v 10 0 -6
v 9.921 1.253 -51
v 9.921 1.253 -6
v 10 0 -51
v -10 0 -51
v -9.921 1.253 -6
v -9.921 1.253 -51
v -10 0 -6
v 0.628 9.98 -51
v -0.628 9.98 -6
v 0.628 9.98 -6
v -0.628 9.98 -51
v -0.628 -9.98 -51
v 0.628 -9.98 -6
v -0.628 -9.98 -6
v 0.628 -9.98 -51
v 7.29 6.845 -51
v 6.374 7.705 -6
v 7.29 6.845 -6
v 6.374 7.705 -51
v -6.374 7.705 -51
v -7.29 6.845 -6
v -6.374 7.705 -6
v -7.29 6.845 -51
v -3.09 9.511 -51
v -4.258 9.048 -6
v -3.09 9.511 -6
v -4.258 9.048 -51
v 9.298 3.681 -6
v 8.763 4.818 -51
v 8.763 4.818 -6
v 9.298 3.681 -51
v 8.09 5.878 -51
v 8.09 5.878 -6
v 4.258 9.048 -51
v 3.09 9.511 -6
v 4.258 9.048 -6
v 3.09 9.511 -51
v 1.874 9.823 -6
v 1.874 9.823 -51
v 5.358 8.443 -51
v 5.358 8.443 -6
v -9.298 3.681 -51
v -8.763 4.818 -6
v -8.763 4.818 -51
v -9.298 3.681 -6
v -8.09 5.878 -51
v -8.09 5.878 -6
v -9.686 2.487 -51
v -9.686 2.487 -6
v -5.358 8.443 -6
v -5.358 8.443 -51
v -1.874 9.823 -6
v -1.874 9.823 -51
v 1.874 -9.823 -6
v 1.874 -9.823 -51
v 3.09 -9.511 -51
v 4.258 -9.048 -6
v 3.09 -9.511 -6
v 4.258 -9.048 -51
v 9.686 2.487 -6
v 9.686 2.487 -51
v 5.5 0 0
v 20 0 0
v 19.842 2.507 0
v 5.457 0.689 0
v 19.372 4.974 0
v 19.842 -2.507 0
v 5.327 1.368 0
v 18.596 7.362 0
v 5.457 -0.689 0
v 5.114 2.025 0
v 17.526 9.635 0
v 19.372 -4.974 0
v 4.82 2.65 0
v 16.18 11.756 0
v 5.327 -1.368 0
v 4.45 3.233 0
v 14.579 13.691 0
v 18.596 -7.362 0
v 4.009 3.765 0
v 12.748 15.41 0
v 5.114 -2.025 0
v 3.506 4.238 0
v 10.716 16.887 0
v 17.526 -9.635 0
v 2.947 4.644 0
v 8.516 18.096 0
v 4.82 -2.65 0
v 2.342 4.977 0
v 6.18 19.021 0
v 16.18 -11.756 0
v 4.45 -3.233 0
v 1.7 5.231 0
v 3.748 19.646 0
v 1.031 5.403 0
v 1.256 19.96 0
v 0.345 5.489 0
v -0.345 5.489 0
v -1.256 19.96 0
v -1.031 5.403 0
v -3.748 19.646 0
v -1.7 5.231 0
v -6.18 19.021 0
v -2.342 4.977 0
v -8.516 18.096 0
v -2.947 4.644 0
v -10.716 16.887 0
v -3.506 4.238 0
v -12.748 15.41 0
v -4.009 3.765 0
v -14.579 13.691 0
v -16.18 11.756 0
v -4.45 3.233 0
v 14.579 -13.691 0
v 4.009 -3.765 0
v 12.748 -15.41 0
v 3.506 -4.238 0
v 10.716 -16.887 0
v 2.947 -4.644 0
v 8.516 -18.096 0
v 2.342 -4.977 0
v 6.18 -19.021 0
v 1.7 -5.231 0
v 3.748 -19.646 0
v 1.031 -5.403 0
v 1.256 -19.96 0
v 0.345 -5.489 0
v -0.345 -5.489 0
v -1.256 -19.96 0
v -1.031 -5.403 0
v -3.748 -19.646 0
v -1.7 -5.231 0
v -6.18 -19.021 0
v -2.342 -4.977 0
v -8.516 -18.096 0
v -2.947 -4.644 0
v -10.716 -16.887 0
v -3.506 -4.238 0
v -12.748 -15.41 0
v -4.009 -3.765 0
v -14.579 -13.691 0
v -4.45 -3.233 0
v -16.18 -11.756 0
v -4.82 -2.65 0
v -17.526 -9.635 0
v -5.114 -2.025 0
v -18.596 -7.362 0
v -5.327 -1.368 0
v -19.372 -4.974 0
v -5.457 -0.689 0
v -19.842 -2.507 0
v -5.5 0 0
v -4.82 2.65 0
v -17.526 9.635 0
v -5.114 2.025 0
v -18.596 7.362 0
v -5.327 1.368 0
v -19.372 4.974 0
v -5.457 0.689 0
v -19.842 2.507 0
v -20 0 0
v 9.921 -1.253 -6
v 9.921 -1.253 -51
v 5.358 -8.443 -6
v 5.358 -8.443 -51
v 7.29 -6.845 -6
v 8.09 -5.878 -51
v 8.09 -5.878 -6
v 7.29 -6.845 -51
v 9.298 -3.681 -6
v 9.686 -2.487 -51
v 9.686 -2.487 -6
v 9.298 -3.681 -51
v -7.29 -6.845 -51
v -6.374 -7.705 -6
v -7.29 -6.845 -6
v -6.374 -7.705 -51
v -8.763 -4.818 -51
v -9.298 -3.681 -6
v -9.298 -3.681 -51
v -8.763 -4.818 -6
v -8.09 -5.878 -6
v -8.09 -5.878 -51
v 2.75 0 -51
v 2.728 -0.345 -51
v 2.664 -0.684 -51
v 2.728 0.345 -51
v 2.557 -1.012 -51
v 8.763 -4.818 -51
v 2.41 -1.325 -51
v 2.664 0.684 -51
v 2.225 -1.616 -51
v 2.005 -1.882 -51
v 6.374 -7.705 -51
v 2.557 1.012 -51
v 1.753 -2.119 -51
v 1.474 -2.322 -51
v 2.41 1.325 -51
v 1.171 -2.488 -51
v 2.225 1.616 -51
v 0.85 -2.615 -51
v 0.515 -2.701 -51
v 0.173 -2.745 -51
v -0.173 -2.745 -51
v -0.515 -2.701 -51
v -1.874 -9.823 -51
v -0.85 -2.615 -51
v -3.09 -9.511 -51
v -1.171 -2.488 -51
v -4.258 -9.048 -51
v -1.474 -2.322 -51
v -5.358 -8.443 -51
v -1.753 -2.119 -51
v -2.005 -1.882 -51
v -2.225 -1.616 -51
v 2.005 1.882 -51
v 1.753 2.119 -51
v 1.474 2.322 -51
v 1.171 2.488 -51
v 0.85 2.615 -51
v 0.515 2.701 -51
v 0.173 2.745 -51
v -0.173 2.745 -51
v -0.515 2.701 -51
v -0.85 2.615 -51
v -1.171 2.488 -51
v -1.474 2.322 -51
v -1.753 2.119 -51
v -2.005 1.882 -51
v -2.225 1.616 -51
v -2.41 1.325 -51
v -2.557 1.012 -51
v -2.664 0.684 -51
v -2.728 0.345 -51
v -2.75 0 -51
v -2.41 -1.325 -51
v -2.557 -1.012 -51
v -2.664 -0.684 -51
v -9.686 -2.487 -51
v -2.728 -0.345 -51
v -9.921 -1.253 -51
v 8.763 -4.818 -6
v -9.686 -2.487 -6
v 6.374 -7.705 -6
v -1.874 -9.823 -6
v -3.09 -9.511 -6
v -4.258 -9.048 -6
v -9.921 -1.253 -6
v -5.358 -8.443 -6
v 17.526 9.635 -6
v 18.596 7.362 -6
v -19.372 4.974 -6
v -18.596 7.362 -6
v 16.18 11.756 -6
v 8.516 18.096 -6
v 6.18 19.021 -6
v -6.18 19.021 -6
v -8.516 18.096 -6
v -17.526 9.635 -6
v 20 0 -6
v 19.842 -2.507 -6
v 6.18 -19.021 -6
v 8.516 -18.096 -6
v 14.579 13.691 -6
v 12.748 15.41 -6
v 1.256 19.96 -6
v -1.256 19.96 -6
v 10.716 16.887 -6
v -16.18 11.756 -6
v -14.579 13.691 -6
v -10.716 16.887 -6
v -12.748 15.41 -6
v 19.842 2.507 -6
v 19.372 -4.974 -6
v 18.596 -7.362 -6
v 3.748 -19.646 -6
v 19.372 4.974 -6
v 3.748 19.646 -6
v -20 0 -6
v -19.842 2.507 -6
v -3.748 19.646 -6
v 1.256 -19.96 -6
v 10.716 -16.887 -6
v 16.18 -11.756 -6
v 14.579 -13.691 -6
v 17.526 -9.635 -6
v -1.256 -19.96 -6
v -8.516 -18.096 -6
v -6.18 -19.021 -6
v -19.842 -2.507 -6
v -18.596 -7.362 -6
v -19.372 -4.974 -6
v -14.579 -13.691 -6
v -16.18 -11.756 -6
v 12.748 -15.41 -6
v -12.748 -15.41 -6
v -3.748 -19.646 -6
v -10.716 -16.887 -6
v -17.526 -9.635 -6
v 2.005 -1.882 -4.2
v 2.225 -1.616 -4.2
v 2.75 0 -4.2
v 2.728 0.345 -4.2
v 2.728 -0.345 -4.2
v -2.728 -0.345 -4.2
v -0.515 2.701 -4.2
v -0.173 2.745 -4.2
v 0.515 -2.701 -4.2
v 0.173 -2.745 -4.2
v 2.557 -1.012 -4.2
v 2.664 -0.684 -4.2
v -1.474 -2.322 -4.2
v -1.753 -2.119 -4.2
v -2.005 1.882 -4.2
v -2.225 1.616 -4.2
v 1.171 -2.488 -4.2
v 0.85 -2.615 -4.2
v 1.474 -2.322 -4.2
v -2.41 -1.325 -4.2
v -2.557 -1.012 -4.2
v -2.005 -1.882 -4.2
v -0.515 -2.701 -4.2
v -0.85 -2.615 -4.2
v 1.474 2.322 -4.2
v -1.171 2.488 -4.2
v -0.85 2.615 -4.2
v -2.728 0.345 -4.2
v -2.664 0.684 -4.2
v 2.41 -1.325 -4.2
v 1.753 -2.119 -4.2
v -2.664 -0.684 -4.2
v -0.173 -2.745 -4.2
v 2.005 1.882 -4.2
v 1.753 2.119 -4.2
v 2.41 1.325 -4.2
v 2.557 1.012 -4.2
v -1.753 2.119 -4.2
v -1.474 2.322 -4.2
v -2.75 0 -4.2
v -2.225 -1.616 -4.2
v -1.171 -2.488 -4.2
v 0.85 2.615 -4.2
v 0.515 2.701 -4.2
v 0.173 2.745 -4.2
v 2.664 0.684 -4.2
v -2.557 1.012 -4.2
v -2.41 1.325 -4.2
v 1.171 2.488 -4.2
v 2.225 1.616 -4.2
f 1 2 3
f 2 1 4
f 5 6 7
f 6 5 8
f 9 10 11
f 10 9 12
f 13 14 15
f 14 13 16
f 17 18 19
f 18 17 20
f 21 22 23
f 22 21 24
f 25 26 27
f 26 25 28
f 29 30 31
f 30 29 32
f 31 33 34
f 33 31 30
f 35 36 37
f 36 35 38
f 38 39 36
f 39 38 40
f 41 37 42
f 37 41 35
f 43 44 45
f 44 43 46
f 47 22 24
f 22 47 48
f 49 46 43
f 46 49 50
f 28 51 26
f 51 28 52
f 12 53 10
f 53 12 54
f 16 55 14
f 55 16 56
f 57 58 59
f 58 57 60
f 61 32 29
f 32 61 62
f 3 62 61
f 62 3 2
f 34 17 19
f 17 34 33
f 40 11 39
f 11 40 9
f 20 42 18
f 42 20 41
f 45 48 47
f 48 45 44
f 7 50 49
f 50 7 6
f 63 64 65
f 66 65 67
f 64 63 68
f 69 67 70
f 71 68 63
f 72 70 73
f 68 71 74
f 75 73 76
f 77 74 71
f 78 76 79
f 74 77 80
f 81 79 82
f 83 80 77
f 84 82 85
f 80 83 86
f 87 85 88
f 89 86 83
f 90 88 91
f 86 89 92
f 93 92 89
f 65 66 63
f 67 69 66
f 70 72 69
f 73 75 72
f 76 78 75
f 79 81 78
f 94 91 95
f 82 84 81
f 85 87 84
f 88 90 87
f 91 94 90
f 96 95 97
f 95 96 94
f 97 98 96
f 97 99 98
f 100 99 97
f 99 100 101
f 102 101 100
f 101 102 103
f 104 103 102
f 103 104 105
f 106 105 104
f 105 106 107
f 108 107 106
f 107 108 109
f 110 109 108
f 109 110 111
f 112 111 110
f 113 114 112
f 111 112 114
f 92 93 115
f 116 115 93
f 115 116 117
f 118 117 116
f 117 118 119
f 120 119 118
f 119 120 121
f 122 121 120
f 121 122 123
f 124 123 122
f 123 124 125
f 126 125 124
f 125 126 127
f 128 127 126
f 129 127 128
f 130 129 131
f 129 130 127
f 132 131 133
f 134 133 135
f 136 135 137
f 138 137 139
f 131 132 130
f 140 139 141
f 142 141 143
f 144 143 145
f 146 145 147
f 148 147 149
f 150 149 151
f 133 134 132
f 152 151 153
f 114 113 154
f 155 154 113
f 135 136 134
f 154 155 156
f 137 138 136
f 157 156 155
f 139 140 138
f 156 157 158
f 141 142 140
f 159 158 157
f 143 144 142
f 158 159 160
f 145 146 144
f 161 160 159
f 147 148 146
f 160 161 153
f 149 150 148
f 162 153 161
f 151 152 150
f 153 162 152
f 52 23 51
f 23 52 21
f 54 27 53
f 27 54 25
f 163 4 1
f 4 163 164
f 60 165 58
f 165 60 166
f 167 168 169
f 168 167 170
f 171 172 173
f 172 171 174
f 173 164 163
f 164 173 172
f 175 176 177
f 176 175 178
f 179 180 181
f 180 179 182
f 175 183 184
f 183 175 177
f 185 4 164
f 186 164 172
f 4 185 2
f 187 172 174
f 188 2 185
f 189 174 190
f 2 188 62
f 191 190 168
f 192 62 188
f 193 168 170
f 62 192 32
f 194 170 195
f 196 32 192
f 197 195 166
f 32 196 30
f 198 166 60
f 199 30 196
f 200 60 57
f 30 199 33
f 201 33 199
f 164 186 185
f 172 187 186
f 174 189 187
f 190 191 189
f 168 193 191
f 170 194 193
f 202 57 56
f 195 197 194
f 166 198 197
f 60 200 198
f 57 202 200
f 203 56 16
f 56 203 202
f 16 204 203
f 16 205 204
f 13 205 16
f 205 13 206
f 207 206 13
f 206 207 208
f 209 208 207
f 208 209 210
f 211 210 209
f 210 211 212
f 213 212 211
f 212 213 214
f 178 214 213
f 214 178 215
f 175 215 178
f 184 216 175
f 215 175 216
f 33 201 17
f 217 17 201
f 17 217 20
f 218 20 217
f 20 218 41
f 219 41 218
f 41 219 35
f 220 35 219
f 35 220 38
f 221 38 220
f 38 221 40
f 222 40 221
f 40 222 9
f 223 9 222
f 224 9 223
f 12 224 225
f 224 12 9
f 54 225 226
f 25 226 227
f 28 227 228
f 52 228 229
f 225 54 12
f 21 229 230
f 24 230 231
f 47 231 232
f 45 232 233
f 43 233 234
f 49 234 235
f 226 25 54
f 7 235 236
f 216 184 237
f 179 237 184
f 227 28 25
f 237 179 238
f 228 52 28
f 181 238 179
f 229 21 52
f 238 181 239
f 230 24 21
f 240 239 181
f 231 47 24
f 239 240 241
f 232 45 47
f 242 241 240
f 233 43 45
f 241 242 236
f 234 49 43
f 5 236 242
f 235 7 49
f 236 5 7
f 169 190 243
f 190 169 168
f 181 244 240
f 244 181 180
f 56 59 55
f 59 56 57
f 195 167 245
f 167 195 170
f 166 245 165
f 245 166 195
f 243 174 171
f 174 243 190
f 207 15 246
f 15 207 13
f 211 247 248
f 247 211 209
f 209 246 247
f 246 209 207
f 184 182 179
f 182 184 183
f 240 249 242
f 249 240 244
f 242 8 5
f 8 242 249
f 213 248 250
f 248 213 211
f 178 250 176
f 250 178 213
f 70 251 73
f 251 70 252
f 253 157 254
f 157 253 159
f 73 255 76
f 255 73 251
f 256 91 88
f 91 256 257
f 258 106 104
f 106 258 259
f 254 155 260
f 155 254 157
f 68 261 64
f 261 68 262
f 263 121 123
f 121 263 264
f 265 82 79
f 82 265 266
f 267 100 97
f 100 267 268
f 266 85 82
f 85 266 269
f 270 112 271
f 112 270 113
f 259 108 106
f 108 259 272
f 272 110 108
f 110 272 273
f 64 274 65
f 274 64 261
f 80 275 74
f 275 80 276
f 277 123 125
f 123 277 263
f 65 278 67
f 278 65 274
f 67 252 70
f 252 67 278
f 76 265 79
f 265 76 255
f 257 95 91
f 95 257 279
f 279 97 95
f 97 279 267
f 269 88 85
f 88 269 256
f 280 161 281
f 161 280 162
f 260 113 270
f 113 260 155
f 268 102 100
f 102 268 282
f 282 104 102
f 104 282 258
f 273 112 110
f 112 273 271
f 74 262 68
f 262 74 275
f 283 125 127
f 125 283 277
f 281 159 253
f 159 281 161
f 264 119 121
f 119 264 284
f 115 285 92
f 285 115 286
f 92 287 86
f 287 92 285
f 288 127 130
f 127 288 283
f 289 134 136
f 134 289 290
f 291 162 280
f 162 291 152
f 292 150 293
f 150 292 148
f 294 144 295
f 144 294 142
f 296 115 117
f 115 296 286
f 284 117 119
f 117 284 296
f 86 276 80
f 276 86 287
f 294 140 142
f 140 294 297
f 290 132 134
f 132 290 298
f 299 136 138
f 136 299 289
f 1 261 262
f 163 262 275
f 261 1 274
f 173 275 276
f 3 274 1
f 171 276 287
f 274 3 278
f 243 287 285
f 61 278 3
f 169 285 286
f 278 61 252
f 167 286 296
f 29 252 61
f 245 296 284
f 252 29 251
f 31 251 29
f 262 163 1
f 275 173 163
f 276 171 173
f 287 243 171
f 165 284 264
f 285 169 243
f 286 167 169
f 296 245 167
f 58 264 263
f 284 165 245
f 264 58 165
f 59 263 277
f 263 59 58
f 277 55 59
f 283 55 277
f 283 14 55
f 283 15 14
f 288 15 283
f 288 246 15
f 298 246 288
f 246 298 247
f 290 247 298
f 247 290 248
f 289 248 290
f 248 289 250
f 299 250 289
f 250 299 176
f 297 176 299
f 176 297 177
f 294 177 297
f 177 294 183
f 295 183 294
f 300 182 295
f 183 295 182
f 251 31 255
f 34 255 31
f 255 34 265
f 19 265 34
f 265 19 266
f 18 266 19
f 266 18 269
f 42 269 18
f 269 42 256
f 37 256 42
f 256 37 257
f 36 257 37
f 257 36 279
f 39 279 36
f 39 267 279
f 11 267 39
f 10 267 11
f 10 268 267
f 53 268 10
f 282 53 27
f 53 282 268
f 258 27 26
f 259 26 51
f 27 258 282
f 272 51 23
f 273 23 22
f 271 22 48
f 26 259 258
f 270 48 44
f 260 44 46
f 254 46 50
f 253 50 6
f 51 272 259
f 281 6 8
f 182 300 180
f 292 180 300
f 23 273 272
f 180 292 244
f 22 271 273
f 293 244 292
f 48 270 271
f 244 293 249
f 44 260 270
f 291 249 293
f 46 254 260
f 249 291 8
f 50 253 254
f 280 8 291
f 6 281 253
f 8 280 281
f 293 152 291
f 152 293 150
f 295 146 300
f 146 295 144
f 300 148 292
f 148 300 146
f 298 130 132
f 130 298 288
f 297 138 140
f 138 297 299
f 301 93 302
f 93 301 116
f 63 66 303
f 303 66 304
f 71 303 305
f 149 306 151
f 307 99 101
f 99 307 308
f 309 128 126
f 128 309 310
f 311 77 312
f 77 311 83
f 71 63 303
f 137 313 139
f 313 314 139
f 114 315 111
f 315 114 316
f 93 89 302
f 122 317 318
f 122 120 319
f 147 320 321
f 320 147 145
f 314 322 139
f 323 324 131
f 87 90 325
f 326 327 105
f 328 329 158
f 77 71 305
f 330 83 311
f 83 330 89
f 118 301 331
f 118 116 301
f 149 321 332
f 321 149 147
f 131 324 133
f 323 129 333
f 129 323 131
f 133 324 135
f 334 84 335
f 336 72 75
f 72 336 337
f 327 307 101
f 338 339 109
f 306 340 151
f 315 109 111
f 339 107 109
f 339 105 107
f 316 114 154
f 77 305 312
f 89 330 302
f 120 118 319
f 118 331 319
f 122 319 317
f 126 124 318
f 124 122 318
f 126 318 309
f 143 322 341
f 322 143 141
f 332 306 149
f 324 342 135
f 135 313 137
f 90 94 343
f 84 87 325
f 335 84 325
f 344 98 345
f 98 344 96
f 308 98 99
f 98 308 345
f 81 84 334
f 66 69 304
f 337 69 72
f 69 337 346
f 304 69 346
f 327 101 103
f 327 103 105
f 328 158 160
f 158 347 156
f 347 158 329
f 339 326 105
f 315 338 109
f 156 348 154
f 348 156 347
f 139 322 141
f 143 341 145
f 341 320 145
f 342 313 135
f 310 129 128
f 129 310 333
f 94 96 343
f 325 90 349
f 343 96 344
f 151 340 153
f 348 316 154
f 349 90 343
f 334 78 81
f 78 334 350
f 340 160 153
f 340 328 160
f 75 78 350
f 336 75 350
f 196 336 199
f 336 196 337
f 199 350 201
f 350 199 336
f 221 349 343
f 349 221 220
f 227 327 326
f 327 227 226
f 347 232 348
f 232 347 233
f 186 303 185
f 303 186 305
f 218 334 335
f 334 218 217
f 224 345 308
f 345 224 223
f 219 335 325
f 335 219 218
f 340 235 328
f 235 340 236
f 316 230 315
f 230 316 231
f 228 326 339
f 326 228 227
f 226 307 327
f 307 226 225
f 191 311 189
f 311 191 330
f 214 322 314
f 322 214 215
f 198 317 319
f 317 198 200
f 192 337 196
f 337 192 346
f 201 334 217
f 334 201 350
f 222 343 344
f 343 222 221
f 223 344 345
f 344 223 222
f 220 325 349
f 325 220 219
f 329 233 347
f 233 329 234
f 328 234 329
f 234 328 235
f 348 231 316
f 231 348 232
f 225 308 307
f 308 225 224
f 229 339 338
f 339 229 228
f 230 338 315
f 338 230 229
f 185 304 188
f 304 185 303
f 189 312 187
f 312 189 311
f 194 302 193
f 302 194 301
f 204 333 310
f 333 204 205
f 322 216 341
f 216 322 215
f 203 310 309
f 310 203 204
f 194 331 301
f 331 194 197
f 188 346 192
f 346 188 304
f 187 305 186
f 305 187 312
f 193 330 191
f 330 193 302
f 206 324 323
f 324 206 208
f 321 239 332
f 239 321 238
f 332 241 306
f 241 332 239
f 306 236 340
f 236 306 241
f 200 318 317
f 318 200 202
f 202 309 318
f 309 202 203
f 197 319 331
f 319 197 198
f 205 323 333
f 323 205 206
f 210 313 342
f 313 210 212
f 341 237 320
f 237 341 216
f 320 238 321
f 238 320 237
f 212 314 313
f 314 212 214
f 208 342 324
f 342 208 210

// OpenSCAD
$fn = 50;


difference() {
	union() {
		translate(v = [0, 0, -51.0000000000]) {
			cylinder(h = 51, r = 10.0000000000);
		}
		translate(v = [0, 0, -6.0000000000]) {
			cylinder(h = 6, r = 20.0000000000);
		}
	}
	union() {
		translate(v = [0, 0, 0]) {
			rotate(a = [0, 0, 0]) {
				difference() {
					union() {
						#translate(v = [0, 0, -51.0000000000]) {
							cylinder(h = 51, r = 2.2500000000);
						}
						#translate(v = [0, 0, -4.2000000000]) {
							cylinder(h = 4.2000000000, r1 = 2.7500000000, r2 = 5.5000000000);
						}
						#translate(v = [0, 0, -51.0000000000]) {
							cylinder(h = 51, r = 2.7500000000);
						}
						#translate(v = [0, 0, -51.0000000000]) {
							cylinder(h = 51, r = 2.2500000000);
						}
					}
					union();
				}
			}
		}
	}
}
